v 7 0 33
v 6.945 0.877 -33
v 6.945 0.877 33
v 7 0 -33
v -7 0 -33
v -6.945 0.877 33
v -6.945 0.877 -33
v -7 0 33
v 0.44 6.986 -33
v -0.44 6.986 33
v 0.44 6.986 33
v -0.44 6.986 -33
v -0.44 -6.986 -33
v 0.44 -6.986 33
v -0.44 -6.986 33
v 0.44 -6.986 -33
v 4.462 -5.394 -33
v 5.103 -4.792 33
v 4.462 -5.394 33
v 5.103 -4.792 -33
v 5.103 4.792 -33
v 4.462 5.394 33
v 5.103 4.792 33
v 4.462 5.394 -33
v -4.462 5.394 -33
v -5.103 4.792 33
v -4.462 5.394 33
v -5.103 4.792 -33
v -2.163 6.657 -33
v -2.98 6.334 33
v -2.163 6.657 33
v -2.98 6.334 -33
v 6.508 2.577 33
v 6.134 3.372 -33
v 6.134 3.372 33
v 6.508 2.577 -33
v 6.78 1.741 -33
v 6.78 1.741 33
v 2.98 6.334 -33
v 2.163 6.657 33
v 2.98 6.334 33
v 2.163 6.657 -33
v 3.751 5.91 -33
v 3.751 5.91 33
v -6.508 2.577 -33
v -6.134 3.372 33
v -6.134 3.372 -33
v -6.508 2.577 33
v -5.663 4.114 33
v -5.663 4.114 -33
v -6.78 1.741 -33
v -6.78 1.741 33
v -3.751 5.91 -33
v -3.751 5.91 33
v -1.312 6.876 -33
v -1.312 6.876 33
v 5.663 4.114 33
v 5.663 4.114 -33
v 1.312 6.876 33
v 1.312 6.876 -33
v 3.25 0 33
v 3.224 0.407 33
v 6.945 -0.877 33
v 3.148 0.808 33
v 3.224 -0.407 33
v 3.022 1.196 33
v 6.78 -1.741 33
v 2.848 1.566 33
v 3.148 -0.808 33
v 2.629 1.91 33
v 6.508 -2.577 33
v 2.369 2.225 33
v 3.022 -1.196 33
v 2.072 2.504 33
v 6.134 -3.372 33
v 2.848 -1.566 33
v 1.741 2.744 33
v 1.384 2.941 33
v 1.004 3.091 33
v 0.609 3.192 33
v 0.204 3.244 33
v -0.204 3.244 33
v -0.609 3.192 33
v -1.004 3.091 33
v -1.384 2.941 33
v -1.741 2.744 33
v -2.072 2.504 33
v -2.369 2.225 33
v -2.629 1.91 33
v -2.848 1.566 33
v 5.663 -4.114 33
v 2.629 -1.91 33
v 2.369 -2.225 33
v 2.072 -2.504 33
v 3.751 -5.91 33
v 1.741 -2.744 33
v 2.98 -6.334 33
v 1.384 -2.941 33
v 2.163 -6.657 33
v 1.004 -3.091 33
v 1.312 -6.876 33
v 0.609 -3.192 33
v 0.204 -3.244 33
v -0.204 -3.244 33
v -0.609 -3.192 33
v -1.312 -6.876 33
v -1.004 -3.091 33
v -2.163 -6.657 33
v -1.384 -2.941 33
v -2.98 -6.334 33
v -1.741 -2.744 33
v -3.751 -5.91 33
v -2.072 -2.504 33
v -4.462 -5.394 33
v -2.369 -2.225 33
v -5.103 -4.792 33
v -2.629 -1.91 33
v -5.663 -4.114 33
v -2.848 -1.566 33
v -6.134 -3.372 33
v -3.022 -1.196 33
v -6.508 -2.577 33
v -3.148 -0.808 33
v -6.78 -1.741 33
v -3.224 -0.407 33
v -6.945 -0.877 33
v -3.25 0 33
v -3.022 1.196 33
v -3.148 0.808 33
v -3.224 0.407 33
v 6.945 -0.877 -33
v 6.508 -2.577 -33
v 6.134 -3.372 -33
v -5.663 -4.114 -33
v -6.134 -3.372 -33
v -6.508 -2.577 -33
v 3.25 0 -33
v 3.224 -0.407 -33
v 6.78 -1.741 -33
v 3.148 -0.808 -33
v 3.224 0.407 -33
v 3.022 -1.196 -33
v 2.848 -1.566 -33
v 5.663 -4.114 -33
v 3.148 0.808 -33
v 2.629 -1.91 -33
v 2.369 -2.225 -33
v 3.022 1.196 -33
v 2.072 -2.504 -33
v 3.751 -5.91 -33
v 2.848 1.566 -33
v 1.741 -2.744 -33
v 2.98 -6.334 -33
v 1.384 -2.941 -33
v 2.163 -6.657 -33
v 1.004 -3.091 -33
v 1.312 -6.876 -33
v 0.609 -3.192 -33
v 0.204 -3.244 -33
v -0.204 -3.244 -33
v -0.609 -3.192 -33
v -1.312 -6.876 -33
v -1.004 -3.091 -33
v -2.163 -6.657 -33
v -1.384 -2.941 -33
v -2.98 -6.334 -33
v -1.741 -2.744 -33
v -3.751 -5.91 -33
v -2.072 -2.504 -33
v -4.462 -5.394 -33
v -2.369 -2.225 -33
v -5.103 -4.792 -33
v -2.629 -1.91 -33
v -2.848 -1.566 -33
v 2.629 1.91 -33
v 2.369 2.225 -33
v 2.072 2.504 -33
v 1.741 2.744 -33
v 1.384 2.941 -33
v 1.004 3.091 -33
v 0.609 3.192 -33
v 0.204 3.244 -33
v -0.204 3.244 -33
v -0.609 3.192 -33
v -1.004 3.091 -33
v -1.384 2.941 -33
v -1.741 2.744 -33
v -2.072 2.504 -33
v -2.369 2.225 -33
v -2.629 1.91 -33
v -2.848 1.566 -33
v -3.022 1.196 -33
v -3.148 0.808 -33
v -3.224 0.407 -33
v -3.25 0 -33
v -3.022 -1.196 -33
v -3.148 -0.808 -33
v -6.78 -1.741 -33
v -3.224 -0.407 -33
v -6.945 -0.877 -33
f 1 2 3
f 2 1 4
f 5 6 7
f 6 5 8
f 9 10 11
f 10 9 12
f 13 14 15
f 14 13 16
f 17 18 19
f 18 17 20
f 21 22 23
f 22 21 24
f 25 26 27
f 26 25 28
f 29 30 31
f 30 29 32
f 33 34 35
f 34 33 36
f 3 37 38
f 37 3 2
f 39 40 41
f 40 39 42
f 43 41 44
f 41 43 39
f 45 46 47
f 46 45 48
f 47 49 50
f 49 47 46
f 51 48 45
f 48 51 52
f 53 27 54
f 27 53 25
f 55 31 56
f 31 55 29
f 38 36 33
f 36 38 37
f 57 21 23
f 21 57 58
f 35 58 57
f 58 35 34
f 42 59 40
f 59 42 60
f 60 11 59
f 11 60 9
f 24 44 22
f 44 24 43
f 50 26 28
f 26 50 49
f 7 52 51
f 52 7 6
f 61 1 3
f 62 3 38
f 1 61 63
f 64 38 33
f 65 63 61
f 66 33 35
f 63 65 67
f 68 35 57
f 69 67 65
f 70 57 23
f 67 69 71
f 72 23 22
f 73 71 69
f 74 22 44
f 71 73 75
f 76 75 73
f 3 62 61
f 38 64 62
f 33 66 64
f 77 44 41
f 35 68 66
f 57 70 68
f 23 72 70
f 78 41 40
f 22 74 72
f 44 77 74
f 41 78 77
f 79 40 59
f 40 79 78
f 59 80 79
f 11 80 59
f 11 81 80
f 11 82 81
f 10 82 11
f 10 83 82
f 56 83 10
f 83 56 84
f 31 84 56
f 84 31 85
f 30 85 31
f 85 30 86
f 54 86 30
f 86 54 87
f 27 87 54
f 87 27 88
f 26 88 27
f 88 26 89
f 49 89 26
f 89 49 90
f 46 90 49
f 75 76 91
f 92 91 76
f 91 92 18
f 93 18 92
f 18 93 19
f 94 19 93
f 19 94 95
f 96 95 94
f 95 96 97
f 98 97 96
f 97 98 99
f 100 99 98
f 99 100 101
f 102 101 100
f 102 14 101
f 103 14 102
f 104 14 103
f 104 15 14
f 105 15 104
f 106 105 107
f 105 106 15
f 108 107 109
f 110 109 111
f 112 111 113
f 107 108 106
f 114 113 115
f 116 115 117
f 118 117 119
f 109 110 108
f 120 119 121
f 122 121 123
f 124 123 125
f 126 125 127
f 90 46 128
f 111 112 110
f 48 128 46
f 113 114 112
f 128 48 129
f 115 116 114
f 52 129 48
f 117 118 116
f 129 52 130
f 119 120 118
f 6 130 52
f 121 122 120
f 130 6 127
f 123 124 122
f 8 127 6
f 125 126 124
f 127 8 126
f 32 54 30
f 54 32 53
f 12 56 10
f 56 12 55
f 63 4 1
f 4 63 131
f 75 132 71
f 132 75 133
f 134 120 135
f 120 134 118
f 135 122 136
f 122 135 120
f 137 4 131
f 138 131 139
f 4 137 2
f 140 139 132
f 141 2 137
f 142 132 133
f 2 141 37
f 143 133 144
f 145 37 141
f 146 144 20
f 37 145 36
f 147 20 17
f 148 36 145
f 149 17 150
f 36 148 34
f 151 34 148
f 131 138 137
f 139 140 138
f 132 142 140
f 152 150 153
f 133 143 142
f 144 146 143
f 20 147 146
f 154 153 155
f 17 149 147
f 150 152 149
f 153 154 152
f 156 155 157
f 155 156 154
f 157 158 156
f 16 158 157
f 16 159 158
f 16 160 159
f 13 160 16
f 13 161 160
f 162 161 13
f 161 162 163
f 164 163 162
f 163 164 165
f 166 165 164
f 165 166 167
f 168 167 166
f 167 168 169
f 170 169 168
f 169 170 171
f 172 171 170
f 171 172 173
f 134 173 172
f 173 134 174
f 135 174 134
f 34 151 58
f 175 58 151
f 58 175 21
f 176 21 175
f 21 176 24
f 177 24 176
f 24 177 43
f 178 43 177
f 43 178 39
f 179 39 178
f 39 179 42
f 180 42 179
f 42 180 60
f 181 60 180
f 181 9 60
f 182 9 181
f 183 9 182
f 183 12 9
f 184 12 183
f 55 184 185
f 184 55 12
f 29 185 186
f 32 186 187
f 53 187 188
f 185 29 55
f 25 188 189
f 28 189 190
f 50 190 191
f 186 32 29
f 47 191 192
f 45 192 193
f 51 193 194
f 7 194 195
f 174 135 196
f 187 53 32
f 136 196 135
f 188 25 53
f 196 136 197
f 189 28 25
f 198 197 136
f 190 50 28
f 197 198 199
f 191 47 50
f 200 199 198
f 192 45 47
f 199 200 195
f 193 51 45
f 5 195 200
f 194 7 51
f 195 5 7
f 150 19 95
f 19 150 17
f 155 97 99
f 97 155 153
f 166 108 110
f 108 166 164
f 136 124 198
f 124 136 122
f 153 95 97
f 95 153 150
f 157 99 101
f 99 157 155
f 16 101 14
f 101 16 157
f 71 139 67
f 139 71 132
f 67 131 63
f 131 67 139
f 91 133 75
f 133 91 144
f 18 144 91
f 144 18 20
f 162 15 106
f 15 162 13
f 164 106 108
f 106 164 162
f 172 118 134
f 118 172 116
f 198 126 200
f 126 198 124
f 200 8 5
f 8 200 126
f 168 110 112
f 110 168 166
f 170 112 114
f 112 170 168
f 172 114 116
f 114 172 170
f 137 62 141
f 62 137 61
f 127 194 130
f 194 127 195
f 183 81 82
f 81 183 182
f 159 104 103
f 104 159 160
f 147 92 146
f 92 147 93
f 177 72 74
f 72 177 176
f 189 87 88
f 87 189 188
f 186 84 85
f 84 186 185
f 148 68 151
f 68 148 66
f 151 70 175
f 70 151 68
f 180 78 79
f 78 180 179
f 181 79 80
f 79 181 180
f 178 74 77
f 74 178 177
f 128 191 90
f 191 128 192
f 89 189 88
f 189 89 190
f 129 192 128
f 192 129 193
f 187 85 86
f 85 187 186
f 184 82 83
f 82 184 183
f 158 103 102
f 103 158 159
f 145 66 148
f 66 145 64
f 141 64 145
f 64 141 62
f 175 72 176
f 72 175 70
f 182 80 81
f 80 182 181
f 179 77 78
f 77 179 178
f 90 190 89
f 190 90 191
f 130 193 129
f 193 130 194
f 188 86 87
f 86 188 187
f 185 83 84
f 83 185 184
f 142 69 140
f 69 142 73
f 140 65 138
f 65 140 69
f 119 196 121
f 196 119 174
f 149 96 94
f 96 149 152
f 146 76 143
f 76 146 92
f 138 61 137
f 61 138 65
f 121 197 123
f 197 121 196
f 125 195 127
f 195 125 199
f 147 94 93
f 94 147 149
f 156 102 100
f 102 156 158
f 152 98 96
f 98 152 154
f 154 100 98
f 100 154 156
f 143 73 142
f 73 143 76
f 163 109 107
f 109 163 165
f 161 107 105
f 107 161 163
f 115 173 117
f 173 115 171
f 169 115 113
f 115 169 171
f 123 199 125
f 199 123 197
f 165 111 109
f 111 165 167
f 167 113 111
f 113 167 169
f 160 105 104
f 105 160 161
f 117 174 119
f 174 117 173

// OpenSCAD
$fn = 50;


difference() {
	union() {
		translate(v = [0, 0, -33.0000000000]) {
			cylinder(h = 66, r = 7.0000000000);
		}
	}
	union() {
		translate(v = [0, 0, -100.0000000000]) {
			cylinder(h = 200, r = 3.2500000000);
		}
	}
}
